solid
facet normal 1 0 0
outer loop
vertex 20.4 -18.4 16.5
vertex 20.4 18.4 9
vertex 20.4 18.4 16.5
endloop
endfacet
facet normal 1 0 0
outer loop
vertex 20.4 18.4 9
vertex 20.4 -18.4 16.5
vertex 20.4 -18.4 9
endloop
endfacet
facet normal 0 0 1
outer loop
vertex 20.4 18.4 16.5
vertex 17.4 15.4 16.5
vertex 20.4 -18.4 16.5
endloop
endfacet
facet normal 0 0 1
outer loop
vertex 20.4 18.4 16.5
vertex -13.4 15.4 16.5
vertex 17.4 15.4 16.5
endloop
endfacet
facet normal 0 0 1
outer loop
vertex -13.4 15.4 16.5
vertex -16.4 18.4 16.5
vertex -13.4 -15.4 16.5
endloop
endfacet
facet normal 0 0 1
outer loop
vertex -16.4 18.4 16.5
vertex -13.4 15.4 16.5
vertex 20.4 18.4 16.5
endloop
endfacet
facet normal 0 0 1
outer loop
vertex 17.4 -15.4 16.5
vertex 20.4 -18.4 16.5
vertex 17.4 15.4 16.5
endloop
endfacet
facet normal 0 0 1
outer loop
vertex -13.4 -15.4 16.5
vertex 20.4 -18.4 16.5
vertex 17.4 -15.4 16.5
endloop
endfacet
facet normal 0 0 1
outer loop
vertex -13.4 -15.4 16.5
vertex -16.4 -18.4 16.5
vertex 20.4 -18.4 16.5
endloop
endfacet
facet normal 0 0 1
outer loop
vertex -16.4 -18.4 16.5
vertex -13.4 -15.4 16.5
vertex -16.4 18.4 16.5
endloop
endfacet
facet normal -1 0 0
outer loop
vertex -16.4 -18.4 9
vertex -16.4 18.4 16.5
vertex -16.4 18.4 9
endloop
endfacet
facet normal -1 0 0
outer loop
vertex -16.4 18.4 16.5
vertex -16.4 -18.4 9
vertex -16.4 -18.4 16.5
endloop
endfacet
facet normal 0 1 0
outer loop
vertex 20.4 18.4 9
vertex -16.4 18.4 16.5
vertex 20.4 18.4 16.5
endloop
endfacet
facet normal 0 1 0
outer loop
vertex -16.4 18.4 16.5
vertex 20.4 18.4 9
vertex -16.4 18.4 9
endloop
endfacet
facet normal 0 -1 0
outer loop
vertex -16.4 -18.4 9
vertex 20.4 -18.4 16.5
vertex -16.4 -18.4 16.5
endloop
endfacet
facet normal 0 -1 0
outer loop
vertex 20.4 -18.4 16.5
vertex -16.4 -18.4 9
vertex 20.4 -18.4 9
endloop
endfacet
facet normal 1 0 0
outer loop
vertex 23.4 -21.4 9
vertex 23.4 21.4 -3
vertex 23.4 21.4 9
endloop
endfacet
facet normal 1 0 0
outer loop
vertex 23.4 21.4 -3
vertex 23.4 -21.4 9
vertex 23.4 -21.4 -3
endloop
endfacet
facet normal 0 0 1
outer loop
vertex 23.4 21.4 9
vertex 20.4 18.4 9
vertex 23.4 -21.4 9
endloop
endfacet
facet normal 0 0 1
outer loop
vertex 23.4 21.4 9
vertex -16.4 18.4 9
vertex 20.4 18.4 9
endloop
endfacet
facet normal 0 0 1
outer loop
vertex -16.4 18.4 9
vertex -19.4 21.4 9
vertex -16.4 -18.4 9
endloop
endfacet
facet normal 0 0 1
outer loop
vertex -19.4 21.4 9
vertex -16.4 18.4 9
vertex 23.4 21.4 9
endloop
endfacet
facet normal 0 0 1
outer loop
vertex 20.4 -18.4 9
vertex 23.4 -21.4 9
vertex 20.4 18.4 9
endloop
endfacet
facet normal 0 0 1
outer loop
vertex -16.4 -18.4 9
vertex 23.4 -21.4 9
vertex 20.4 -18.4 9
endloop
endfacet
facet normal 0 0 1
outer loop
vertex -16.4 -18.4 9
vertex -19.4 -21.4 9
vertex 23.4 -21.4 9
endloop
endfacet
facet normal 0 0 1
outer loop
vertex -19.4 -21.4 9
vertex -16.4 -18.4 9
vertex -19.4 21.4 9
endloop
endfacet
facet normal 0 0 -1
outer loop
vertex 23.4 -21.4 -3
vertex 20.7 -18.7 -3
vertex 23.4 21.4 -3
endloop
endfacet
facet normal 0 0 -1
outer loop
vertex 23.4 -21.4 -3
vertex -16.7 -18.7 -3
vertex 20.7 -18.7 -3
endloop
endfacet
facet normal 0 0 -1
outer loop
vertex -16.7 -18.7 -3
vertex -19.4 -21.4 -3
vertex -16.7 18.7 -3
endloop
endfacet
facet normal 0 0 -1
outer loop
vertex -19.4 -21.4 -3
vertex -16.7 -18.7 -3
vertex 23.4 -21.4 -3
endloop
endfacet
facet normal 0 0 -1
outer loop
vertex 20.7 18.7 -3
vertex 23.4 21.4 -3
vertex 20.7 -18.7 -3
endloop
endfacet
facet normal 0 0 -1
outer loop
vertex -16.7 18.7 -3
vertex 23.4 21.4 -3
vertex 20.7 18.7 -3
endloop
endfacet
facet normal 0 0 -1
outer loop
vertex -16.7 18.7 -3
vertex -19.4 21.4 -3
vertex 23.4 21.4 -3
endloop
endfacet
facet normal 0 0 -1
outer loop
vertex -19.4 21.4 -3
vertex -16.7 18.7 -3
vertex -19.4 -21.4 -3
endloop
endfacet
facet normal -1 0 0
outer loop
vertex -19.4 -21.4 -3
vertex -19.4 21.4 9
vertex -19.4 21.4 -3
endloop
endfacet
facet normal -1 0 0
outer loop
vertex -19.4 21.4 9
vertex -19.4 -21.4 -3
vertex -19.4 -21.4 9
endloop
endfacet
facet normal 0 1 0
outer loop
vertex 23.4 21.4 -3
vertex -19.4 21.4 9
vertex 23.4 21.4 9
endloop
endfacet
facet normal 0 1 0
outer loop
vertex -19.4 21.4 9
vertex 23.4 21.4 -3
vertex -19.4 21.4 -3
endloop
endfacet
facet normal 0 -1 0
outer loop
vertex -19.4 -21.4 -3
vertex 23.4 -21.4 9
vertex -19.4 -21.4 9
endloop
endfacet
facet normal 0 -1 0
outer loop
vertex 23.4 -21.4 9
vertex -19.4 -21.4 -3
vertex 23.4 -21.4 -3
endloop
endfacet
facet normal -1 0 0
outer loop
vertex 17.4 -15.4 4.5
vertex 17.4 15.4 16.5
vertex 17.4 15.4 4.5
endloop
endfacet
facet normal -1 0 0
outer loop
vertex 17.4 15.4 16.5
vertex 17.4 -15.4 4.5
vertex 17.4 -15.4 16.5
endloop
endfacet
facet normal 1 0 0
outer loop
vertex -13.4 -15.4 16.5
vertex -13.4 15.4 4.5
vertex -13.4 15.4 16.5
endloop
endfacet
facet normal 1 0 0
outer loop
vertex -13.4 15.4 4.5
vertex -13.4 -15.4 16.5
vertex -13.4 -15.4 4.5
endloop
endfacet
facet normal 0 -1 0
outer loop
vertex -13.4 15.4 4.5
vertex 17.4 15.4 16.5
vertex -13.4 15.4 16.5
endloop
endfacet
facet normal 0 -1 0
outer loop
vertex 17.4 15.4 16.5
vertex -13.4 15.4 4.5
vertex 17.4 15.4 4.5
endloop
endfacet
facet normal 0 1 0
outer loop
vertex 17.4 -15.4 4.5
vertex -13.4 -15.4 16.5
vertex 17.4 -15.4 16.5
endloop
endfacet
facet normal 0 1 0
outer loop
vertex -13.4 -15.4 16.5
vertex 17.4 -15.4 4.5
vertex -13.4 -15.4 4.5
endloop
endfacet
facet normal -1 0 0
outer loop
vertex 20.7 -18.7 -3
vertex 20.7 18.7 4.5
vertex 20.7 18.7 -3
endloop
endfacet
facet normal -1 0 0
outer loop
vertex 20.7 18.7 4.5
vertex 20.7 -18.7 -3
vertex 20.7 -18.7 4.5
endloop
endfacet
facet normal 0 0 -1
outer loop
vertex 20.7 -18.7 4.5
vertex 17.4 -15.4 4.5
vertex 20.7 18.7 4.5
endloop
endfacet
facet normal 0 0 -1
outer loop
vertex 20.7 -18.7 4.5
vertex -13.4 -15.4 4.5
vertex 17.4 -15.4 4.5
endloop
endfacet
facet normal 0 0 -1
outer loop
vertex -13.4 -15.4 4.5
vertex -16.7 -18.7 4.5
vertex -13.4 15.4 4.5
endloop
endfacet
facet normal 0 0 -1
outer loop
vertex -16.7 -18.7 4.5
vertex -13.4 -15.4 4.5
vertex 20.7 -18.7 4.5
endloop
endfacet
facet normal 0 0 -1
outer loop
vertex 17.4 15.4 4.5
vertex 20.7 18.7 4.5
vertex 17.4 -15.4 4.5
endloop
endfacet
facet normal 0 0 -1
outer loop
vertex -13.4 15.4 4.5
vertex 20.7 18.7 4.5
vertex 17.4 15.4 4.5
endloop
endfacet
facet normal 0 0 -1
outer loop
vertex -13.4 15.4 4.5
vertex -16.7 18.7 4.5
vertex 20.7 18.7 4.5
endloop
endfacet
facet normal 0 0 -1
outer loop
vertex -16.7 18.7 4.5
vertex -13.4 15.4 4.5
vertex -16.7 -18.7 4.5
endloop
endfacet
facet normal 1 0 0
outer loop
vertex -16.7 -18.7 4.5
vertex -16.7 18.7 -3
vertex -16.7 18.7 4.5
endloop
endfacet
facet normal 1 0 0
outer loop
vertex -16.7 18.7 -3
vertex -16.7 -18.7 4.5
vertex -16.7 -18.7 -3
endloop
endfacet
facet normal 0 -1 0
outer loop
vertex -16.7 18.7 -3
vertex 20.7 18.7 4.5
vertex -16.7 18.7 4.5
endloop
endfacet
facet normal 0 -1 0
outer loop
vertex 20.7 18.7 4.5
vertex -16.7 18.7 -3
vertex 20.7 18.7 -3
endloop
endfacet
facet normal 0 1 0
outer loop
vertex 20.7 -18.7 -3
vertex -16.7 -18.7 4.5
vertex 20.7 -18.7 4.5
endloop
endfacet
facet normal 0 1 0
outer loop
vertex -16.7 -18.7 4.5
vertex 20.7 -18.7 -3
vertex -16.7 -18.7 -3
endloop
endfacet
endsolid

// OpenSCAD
$fn = 100;

wall_thickness = 3;

// Camera
camera_case_protrution = 9;
camera_slot_width = 30.8;
lens_protrution = 13+2;

// Attachment to increase camera height for lens
// Lens is 13mm tall + 2mm
module camera_slot_extension() {
  // 12mm from top, 16mm from bottom, 30.4 across
  // 12mm tall, wtih 3mm of base, exposes 9mm of case
  difference() {
    union() {
      translate([2,0,camera_case_protrution])
        cube([camera_slot_width+2*wall_thickness,camera_slot_width+2*wall_thickness,lens_protrution], center = true);
      translate([2,0,wall_thickness])
        cube([camera_slot_width+4*wall_thickness,camera_slot_width+4*wall_thickness,camera_case_protrution+wall_thickness], center = true);
    }
    union() {
      translate([2,0,camera_case_protrution])
        cube([camera_slot_width,camera_slot_width,lens_protrution], center = true);
      translate([2,0,0])
        cube([camera_slot_width+2.2*wall_thickness,camera_slot_width+2.2*wall_thickness,camera_case_protrution], center = true);
    }
  }
}

// Render
camera_slot_extension();
